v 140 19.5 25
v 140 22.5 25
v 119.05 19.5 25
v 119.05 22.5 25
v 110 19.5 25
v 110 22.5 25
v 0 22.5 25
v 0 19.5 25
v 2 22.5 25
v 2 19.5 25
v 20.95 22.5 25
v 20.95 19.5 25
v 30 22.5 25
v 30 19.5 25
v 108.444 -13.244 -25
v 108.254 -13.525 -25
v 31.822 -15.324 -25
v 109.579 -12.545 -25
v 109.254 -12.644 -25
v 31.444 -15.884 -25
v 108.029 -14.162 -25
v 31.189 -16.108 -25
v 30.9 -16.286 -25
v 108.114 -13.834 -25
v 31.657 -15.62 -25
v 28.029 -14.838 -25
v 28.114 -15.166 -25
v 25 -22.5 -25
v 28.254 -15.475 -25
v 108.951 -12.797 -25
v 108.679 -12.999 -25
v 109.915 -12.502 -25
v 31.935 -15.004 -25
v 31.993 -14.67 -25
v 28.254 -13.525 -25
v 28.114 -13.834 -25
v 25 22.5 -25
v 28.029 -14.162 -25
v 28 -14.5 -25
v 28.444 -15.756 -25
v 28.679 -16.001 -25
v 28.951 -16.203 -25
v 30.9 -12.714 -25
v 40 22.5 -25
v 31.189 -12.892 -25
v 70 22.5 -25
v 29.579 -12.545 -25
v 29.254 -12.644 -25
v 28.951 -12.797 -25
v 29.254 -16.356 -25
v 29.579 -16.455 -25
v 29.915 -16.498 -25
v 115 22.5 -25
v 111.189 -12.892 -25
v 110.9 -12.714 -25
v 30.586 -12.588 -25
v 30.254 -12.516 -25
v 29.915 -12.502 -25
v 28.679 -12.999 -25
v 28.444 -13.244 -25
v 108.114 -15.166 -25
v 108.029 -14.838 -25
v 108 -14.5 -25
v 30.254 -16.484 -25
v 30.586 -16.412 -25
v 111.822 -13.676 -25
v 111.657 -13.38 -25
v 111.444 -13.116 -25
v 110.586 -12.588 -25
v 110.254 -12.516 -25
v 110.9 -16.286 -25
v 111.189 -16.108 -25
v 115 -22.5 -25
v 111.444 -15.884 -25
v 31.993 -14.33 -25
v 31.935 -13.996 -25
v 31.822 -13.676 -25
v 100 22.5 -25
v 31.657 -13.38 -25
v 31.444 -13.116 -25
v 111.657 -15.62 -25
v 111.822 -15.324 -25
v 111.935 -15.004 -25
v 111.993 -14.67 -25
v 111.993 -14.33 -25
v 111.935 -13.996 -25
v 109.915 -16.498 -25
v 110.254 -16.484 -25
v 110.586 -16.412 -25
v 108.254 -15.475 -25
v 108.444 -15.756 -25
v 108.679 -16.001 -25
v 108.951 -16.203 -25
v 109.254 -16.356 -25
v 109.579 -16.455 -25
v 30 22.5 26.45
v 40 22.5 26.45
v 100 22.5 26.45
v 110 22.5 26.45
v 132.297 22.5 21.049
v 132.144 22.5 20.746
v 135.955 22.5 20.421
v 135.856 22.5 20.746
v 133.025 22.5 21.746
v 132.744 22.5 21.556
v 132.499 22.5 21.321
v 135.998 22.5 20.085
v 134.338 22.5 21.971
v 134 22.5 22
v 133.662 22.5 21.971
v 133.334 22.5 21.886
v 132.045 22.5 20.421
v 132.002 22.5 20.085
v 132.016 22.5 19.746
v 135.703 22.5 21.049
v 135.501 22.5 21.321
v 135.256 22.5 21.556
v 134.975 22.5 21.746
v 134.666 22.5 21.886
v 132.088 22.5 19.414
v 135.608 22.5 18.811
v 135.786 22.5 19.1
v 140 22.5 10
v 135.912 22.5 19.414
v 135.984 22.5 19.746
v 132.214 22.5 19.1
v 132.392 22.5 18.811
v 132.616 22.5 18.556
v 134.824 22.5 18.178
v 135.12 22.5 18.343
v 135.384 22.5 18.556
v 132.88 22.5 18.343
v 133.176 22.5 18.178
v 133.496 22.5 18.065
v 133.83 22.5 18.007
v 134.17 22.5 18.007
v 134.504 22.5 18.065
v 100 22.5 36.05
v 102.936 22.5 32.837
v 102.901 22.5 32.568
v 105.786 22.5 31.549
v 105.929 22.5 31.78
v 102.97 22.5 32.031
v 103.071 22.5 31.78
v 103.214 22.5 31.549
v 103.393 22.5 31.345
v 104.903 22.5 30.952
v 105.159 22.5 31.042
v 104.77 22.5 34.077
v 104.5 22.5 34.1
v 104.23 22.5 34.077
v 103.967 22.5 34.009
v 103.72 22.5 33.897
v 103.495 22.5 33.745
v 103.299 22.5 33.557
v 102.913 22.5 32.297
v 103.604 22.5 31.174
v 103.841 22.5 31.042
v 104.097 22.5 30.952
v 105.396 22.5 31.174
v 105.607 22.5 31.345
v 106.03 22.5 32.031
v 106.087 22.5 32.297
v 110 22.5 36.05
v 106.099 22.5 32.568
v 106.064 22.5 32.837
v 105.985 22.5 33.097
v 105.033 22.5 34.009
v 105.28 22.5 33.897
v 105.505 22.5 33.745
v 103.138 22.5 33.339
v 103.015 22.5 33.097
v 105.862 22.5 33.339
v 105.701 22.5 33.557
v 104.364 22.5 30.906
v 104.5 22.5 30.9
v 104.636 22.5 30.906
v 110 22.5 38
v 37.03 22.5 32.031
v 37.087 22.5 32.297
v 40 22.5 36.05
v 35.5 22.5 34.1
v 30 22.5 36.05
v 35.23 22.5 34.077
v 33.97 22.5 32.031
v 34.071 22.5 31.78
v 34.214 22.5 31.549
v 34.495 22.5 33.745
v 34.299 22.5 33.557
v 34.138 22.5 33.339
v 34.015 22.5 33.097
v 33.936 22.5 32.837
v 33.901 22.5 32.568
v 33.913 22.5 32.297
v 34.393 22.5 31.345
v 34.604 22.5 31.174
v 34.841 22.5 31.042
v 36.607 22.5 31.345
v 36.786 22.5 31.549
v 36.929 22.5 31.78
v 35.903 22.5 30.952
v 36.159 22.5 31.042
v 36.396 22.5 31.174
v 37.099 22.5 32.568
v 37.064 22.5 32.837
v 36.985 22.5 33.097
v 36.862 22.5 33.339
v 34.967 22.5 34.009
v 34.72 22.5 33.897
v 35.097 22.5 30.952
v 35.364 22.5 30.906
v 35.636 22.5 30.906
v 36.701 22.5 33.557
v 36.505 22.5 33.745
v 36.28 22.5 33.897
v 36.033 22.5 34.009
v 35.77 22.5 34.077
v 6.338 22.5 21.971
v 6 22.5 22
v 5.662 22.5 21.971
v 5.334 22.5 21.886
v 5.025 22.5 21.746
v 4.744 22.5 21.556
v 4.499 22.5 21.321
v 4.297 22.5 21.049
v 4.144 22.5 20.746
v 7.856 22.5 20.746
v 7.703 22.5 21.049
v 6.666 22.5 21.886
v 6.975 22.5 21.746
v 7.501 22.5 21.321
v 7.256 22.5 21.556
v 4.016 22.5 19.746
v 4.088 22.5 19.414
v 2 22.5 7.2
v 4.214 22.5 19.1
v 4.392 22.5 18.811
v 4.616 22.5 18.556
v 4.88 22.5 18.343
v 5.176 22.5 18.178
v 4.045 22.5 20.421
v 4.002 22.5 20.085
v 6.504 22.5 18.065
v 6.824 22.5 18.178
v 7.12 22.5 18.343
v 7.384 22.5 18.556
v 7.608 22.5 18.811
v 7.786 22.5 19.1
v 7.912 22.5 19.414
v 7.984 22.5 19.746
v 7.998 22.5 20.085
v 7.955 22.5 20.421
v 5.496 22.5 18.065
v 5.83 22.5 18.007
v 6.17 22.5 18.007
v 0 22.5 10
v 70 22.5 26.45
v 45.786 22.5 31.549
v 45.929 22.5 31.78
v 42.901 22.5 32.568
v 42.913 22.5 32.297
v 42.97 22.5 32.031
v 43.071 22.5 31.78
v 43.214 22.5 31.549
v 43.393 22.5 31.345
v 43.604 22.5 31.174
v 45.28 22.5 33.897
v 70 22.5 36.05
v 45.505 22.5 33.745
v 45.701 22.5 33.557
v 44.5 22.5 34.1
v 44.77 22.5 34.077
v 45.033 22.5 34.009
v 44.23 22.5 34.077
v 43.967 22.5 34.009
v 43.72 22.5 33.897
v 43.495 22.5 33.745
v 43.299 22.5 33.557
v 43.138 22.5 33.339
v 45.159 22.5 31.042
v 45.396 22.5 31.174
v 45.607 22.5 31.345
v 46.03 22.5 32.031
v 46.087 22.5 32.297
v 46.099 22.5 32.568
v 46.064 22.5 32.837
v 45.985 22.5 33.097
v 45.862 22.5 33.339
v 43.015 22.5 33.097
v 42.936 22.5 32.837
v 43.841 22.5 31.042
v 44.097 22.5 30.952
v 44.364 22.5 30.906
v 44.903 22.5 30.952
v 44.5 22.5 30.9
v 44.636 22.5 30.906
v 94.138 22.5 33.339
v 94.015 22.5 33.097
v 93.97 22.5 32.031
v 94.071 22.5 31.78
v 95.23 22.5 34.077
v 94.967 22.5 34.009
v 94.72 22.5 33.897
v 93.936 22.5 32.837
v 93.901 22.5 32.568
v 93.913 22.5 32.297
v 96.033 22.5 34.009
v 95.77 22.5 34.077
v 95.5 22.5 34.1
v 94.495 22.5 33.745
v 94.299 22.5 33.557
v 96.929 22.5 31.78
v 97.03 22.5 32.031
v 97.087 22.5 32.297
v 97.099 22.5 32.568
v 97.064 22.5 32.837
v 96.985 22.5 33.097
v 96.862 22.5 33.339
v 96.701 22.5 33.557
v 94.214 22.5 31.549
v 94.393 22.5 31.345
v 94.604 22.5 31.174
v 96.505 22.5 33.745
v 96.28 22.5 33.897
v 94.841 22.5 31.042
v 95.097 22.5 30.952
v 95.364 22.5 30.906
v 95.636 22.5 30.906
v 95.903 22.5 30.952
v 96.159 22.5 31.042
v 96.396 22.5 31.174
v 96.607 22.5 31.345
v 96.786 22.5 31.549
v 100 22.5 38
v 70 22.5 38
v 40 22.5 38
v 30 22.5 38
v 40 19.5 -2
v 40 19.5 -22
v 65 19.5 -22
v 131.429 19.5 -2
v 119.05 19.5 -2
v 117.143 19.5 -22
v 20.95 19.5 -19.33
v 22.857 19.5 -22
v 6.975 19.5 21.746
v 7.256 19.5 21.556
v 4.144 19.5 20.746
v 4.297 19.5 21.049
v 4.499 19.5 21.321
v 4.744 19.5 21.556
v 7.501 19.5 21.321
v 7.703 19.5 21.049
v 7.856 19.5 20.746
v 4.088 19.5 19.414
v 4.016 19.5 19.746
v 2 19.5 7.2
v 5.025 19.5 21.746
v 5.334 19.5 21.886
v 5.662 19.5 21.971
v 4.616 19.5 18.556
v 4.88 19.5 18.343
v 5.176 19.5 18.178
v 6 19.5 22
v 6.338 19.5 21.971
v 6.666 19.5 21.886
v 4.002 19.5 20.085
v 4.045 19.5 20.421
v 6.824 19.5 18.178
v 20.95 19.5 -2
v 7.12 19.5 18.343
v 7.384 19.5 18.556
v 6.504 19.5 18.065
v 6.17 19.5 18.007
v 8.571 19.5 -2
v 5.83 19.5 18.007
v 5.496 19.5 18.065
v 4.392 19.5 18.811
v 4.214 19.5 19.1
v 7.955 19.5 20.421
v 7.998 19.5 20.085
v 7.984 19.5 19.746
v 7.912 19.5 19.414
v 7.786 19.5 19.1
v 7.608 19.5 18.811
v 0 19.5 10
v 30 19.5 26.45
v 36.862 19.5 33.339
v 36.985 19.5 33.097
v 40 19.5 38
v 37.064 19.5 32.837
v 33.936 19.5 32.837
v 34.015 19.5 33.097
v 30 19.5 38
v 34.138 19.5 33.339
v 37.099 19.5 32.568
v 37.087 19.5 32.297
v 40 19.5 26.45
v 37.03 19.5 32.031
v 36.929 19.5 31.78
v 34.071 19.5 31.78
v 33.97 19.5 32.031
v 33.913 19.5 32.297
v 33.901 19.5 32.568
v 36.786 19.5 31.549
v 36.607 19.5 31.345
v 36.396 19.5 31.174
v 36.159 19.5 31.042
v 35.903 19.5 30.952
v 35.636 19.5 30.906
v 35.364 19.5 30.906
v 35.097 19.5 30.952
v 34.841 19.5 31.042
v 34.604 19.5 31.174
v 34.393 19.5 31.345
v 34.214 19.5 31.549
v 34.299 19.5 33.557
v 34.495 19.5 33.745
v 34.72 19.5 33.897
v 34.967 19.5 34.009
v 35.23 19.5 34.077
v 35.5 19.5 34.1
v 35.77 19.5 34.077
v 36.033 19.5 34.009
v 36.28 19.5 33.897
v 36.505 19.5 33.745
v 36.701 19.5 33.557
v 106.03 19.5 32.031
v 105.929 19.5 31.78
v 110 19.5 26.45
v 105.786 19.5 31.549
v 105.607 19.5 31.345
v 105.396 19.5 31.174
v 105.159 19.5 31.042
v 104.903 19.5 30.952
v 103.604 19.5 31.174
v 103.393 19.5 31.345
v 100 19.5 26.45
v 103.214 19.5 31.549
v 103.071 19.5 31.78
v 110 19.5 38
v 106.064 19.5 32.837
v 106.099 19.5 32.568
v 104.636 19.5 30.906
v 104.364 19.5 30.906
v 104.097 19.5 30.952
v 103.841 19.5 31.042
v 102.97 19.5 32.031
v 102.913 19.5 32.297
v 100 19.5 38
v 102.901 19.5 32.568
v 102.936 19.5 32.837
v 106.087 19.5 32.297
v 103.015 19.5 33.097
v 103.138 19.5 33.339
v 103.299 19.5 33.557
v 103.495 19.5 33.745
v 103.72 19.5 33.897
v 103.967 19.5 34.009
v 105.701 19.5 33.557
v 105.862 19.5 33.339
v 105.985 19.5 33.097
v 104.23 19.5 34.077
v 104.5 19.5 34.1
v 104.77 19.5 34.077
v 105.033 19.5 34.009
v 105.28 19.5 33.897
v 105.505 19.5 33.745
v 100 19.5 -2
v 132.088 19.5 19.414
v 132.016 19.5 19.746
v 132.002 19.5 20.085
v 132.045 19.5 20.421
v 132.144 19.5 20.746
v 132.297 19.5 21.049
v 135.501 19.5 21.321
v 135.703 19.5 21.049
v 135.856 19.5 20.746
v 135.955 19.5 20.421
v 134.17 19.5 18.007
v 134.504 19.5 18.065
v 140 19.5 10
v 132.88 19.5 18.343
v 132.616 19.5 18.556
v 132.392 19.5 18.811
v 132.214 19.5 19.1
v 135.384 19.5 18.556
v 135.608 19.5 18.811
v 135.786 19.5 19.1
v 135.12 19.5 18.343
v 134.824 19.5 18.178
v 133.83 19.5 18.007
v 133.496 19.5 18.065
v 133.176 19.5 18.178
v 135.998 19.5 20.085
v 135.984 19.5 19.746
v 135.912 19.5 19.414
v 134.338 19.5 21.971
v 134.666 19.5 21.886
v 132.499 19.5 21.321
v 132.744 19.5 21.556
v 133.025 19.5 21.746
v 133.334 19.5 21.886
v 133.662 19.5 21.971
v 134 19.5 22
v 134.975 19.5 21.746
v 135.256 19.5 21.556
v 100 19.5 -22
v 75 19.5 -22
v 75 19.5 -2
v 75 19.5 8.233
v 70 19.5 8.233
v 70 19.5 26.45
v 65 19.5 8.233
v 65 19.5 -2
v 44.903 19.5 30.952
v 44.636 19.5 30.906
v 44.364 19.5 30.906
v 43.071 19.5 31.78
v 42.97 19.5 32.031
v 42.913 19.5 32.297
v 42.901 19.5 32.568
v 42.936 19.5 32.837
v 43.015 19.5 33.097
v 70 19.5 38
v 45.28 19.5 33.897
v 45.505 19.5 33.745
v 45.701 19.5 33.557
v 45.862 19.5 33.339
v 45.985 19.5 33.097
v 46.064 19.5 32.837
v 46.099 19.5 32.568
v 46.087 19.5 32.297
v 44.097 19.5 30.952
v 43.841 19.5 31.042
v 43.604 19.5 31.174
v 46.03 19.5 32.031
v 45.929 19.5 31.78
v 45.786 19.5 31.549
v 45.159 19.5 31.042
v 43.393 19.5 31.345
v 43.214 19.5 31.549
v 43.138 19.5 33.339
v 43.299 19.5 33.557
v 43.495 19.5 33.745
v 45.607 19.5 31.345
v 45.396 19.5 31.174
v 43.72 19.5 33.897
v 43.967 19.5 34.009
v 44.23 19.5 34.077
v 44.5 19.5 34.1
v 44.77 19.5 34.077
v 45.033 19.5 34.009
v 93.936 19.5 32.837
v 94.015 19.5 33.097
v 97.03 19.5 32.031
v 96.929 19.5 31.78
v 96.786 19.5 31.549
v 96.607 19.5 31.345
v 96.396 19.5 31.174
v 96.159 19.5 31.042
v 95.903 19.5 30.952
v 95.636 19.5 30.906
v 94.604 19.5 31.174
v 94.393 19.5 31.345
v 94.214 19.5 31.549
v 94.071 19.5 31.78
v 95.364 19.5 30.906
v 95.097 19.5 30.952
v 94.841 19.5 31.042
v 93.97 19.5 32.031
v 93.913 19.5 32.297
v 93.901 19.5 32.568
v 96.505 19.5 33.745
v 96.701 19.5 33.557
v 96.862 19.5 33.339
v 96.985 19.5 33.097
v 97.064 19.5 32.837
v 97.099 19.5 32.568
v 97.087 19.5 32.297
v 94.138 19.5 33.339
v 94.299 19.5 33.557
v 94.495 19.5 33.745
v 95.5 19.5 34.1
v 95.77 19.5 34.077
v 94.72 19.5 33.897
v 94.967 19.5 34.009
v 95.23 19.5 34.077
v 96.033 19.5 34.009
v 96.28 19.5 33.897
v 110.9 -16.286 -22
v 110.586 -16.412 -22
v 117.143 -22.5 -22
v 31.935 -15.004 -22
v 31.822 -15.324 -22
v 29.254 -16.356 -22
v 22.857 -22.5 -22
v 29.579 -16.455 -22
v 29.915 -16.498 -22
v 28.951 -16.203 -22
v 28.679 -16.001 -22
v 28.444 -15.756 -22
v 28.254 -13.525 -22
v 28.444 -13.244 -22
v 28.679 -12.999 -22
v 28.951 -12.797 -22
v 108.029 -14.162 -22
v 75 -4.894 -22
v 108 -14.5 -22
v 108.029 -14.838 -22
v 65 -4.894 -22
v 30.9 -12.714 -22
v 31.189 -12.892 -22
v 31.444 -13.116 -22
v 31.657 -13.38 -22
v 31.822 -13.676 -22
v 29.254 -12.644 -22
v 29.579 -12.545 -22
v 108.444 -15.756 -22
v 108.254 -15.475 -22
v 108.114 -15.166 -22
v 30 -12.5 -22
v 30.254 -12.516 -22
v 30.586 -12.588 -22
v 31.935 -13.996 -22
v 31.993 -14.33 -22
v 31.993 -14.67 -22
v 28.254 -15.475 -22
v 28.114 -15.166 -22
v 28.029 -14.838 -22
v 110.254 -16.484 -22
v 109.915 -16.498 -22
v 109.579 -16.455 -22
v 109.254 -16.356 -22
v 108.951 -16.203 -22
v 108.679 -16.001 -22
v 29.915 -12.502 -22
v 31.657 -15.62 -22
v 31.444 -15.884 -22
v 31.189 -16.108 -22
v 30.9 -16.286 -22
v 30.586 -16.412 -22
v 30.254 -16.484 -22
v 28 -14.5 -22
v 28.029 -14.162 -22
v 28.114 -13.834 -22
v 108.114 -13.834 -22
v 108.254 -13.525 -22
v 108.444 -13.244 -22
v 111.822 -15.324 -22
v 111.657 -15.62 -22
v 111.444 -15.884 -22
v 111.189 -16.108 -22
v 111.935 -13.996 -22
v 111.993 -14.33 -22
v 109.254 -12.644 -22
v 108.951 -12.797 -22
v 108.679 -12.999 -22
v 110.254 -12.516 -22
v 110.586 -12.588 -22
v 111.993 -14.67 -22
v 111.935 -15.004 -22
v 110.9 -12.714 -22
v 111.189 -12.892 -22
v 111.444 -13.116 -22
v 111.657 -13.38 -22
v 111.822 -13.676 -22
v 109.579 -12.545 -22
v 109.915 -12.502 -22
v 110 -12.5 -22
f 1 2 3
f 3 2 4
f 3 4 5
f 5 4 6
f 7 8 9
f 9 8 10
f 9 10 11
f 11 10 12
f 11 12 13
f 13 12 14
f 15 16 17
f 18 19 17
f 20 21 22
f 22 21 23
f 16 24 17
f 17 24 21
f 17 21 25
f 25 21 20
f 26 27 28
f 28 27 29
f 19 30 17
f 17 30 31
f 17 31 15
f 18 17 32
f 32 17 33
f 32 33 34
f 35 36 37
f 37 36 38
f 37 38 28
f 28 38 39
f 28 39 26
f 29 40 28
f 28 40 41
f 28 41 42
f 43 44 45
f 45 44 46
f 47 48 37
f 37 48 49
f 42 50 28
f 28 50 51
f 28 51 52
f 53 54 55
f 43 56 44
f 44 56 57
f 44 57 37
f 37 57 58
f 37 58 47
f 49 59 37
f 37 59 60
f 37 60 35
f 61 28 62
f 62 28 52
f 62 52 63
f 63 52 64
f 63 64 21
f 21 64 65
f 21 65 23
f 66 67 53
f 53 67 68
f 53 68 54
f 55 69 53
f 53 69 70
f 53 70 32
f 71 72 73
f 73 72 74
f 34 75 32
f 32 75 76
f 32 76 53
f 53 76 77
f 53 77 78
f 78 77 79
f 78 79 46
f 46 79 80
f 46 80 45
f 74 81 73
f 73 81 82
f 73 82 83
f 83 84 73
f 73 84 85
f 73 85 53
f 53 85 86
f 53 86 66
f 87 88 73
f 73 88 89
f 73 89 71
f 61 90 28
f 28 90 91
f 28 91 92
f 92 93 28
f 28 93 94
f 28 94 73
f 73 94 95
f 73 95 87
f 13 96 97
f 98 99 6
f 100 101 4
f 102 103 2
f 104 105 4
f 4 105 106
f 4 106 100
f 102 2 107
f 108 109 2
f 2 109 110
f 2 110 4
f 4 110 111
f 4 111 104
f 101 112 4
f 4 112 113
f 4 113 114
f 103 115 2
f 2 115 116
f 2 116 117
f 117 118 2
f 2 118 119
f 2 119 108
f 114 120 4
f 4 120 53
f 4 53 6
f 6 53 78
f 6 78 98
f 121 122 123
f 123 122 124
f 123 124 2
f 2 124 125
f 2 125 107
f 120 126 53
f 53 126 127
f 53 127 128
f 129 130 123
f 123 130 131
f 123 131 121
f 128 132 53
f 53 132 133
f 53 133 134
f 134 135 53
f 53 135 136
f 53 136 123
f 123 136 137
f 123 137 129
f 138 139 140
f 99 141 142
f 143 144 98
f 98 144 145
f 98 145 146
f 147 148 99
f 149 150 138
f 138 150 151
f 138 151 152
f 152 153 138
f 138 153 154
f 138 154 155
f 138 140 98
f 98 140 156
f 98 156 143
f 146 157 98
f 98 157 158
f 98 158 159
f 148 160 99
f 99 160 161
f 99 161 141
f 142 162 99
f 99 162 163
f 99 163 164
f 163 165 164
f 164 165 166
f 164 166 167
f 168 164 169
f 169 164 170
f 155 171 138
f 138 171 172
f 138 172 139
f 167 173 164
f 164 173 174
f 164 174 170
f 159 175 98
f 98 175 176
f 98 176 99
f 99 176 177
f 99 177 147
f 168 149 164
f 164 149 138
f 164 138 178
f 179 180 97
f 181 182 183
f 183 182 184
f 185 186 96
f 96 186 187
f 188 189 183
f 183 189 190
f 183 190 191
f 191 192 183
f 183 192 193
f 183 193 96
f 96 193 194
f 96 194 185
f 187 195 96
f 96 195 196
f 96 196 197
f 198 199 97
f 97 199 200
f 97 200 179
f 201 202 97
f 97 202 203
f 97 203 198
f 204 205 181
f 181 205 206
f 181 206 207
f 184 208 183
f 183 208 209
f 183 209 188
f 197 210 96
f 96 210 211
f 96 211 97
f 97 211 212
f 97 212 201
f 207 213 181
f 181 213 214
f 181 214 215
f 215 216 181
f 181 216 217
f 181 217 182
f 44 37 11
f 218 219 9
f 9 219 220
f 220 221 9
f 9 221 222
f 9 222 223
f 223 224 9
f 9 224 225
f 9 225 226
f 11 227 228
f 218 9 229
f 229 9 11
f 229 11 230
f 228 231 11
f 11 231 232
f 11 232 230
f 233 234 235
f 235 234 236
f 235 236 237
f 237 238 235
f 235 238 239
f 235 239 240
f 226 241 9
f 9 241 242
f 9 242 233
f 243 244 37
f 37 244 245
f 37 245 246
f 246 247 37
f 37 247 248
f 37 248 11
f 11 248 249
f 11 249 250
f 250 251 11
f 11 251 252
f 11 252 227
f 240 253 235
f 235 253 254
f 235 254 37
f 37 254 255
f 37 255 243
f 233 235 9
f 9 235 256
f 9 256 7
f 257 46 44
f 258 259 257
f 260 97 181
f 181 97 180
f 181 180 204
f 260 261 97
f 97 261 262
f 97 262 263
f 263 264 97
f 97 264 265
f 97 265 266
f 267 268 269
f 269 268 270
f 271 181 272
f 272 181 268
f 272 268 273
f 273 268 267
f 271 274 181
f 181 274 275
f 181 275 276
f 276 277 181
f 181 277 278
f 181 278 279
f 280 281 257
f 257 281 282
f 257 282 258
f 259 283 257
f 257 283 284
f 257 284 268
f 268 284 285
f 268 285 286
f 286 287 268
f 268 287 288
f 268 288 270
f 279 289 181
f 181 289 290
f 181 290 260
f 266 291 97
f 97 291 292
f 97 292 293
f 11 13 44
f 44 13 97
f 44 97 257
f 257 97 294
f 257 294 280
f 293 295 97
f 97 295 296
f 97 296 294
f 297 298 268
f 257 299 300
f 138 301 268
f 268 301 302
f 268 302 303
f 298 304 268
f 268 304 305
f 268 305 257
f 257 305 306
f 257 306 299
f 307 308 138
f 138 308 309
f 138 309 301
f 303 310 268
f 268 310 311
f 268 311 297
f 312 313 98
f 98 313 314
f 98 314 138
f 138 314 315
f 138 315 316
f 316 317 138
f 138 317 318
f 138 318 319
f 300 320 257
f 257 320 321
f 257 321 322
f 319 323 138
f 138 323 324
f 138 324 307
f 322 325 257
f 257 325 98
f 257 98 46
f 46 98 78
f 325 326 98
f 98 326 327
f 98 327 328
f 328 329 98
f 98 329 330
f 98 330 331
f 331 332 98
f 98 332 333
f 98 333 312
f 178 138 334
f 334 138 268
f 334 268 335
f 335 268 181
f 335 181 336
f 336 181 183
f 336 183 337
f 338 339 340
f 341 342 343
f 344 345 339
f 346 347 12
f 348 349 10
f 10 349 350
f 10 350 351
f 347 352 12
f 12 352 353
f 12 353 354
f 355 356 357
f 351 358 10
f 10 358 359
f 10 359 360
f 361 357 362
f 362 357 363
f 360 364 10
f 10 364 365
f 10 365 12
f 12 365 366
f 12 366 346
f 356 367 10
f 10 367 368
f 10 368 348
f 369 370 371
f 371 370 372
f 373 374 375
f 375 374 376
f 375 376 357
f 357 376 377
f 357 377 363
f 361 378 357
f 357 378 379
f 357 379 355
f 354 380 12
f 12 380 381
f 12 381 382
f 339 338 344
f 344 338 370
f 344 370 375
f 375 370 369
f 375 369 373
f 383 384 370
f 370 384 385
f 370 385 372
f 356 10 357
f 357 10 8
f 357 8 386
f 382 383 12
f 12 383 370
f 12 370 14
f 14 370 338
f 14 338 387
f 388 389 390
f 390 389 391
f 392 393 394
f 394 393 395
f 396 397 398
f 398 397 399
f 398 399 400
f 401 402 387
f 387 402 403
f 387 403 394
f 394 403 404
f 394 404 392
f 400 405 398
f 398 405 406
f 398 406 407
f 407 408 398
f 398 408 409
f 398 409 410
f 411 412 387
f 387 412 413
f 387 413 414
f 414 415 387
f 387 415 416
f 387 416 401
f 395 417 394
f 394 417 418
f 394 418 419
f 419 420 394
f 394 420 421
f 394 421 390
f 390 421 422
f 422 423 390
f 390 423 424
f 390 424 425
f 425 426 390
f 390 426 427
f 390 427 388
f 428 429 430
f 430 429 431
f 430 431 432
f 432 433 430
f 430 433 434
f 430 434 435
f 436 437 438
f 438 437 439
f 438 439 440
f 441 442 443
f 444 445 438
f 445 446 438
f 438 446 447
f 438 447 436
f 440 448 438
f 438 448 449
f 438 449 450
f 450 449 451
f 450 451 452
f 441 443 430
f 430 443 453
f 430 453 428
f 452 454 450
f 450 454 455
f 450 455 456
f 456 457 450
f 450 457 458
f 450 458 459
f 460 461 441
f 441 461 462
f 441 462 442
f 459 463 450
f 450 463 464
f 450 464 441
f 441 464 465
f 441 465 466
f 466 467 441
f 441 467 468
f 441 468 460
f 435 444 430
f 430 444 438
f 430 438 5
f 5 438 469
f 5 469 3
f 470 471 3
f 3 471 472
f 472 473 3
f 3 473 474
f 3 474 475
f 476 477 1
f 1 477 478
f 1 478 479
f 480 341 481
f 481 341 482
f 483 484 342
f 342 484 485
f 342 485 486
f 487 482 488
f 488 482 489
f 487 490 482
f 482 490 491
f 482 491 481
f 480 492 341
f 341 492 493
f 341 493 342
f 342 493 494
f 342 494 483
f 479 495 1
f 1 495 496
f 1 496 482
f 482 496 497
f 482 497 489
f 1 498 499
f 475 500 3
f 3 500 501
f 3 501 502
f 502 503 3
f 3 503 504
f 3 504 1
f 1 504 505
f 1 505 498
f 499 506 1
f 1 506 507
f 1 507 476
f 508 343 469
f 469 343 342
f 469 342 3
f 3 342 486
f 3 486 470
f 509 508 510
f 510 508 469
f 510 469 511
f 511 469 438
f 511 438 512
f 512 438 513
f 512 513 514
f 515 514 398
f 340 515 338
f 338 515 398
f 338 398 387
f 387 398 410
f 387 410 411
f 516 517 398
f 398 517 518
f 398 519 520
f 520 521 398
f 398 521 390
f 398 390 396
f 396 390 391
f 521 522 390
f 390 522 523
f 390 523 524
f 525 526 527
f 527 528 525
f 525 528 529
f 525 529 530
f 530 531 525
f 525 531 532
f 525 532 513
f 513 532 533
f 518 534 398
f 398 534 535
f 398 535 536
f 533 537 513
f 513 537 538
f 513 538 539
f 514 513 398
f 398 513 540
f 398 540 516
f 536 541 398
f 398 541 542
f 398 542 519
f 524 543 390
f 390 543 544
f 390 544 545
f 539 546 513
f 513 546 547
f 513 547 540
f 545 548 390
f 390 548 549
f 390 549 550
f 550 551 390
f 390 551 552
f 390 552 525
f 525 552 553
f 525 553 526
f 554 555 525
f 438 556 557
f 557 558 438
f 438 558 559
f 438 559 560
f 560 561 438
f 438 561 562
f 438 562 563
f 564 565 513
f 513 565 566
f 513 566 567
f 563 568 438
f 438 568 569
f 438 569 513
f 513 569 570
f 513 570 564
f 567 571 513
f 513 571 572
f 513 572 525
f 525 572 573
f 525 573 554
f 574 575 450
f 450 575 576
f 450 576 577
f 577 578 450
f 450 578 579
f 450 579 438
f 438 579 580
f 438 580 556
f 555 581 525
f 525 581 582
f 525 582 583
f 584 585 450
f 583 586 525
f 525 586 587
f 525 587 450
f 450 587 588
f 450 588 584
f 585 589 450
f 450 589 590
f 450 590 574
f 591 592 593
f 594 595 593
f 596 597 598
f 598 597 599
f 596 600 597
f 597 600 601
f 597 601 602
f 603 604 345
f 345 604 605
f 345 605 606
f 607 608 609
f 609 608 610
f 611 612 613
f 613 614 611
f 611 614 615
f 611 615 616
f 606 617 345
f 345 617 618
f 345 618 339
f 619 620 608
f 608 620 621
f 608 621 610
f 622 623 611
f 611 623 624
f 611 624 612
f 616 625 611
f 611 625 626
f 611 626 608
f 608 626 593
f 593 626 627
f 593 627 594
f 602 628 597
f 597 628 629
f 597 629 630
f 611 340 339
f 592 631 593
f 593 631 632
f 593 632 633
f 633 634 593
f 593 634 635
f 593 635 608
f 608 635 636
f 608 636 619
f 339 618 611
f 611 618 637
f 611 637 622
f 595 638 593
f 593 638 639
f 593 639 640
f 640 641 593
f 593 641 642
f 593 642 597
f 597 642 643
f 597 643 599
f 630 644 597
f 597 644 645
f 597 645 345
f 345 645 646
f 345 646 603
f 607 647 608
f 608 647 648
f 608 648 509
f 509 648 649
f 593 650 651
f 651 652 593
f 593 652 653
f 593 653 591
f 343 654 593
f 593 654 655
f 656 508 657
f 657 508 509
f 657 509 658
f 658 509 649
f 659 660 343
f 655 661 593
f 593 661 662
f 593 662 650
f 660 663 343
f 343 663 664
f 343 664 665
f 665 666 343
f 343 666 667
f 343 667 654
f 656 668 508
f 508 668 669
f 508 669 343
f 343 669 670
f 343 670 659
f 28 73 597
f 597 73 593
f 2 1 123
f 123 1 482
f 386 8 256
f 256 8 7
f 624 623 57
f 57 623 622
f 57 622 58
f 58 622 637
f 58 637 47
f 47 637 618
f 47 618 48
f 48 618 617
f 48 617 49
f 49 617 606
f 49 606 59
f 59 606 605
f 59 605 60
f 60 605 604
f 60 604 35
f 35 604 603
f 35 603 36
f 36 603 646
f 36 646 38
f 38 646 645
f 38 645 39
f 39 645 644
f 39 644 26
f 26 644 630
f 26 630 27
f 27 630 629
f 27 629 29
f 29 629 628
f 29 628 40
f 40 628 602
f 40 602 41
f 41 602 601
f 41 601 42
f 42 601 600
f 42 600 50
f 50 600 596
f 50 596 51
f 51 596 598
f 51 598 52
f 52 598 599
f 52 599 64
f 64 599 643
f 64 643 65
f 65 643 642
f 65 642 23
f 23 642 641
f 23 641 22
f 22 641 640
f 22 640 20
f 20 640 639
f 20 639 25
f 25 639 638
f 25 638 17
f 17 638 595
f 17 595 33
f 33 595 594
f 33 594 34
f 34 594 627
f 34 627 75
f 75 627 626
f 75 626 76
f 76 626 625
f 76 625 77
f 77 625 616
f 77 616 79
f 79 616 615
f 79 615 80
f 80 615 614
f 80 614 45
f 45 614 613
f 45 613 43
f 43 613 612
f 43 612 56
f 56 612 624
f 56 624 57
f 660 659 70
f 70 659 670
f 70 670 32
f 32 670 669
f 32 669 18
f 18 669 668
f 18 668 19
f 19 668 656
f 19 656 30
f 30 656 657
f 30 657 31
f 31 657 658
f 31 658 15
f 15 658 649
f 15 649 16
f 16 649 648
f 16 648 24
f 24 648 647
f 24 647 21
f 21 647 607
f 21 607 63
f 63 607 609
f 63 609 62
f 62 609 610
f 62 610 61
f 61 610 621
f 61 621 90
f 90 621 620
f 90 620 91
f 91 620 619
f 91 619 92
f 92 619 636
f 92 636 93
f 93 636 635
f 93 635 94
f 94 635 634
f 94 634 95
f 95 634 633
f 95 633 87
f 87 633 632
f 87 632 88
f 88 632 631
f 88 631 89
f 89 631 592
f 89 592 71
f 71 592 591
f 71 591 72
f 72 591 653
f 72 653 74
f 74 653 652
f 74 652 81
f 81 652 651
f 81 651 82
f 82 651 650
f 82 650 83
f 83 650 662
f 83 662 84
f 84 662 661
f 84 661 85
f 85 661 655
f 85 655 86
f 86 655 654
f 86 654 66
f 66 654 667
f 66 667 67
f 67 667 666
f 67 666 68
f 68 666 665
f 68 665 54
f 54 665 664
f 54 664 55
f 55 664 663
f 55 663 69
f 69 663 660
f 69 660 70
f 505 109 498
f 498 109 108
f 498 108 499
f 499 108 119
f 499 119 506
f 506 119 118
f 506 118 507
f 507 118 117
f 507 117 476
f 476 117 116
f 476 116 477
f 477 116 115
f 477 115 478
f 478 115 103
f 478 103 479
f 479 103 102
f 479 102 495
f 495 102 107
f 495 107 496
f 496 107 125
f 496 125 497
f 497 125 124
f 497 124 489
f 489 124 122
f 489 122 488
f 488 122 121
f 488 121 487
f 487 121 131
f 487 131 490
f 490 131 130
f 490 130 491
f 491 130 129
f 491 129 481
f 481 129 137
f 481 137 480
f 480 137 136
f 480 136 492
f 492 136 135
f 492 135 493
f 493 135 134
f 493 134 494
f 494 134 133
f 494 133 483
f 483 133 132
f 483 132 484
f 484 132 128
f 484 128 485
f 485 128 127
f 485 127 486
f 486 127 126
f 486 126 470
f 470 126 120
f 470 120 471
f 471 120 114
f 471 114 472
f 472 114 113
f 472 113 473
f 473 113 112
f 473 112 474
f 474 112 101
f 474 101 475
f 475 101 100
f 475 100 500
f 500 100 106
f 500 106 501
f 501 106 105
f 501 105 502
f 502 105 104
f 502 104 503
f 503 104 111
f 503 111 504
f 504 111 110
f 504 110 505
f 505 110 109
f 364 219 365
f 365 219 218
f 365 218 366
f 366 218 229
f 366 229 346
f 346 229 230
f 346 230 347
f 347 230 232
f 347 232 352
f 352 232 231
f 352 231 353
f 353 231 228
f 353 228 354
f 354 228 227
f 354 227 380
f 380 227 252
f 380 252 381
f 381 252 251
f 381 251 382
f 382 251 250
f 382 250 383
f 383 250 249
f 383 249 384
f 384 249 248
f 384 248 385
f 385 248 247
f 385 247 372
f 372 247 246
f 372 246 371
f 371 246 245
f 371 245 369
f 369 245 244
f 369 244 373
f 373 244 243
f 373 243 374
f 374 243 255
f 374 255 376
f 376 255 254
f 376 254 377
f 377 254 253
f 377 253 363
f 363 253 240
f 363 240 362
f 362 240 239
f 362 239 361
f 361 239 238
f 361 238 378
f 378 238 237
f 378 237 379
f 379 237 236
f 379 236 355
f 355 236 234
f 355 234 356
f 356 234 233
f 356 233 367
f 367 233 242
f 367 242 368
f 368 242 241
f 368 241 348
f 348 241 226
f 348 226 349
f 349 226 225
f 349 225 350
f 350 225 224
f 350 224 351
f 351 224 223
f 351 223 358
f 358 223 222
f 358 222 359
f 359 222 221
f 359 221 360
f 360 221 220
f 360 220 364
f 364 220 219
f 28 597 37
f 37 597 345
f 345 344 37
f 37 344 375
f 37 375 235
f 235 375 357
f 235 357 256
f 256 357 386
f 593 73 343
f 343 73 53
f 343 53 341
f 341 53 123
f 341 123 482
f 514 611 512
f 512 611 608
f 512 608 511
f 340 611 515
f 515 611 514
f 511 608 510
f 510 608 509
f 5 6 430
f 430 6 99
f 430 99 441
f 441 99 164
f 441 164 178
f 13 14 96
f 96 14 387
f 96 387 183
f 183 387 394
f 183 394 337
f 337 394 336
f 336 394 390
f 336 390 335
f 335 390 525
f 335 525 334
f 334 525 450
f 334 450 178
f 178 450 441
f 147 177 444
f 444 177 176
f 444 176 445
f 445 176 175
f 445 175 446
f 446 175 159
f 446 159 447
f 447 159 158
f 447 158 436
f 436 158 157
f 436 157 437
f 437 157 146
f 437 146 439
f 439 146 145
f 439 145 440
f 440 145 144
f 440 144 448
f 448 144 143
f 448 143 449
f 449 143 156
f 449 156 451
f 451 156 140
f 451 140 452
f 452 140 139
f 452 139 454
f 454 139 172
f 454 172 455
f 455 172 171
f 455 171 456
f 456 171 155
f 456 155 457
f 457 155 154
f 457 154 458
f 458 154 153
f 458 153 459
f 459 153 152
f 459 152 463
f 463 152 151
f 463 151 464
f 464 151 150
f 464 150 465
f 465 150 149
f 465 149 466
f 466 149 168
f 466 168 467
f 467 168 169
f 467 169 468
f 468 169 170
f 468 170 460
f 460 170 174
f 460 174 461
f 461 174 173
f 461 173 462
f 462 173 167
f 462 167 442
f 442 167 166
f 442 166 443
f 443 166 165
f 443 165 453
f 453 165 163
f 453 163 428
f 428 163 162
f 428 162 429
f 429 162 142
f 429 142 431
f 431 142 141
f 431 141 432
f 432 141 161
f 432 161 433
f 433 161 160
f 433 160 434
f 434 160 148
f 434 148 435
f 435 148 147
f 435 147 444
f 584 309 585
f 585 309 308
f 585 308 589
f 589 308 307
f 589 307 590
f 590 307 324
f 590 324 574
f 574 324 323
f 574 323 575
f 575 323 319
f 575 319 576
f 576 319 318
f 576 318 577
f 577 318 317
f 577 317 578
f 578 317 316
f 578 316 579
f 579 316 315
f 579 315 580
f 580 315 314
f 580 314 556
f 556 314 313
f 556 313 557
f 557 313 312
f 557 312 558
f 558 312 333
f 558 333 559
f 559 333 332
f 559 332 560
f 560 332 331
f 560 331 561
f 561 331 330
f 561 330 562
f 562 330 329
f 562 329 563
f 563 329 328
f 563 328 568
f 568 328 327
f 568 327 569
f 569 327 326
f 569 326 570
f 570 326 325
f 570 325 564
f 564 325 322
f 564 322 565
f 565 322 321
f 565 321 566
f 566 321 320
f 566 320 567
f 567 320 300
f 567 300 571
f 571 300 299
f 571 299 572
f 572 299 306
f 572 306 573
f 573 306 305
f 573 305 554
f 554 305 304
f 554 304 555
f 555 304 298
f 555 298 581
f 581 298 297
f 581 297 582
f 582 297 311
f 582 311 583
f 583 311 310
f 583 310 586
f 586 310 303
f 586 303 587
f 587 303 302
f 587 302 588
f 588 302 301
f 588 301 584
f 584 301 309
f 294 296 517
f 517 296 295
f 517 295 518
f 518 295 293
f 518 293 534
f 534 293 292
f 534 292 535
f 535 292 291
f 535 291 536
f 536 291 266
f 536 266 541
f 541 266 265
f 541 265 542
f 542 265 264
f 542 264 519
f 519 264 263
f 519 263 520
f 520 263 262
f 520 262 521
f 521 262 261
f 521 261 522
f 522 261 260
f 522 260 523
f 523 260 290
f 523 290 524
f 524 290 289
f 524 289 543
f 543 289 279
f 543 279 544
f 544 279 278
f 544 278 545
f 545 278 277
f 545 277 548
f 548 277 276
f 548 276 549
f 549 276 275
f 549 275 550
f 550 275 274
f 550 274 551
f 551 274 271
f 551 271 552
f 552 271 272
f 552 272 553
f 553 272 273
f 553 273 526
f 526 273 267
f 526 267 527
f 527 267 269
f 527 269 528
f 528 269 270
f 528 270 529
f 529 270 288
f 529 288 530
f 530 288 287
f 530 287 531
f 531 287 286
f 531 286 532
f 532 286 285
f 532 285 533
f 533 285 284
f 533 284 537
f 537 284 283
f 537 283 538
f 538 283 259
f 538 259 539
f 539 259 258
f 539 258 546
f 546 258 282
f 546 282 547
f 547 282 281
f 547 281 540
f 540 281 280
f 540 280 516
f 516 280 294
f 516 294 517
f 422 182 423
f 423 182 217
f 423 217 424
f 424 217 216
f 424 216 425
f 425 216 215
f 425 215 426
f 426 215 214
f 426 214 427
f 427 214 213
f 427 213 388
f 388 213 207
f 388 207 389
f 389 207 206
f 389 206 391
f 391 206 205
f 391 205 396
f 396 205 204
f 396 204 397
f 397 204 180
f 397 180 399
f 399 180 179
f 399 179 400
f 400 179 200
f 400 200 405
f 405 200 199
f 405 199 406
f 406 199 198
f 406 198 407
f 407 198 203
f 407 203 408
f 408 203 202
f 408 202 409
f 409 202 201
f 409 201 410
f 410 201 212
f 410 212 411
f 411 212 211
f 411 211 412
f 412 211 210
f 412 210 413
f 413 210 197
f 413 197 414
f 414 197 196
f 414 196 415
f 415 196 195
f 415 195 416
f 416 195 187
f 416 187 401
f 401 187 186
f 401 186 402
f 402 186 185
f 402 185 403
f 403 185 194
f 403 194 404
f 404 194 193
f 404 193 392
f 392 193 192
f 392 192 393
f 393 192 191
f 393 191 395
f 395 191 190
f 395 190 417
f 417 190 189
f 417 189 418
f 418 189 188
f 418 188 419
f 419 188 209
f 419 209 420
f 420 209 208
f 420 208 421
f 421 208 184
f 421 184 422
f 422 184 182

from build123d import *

# Parameters (mm, degrees)
EXTRUDE_1_DEPTH     = 140
CUT_EXTRUDE_1_REACH = 152.354
SKETCH_2_R          = 2
CUT_EXTRUDE_2_REACH = 151.164
SKETCH_3_R          = 2
CUT_EXTRUDE_3_DEPTH = 150.164338902
RIB_2_REACH         = 79.661
SKETCH_9_WALL_W     = 196.169186172
SKETCH_9_WALL_H     = 10
SKETCH_10_W         = 80
SKETCH_10_H         = 3
EXTRUDE_2_DEPTH     = 13
SKETCH_11_R         = 1.6
CUT_EXTRUDE_4_DEPTH = 3


with BuildPart() as part:
    # 草图1 → 凸台-拉伸1 (new body)
    with BuildSketch(Plane(origin=(0, 0, 0), x_dir=(0, 0, -1), z_dir=(1, 0, 0))):
        Polygon((22, 19.5), (22, -22.5), (25, -22.5), (25, 22.5), (-25, 22.5), (-25, 19.5), align=None)
    extrude(amount=EXTRUDE_1_DEPTH)

    # 草图2 → 切除-拉伸1 (cut, up to next)
    with BuildSketch(Plane(origin=(0, 0, -25), x_dir=(-1, 0, 0), z_dir=(0, 0, -1)), mode=Mode.PRIVATE) as cut_extrude_1_sk1:
        with Locations((-110, -14.5)):
            Circle(SKETCH_2_R)
    cut_extrude_1_tool1 = extrude(cut_extrude_1_sk1.sketch, amount=-CUT_EXTRUDE_1_REACH, mode=Mode.PRIVATE) & part.part
    # 草图2 → 切除-拉伸1 (cut, up to next)
    with BuildSketch(Plane(origin=(0, 0, -25), x_dir=(-1, 0, 0), z_dir=(0, 0, -1)), mode=Mode.PRIVATE) as cut_extrude_1_sk2:
        with Locations((-30, -14.5)):
            Circle(SKETCH_2_R)
    cut_extrude_1_tool2 = extrude(cut_extrude_1_sk2.sketch, amount=-CUT_EXTRUDE_1_REACH, mode=Mode.PRIVATE) & part.part
    add(cut_extrude_1_tool1.solids().sort_by_distance((110, -14.5, -25))[0], mode=Mode.SUBTRACT)
    add(cut_extrude_1_tool2.solids().sort_by_distance((30, -14.5, -25))[0], mode=Mode.SUBTRACT)

    # 草图3 → 切除-拉伸2 (cut, up to next)
    with BuildSketch(Plane(origin=(0, 22.5, 0), x_dir=(1, 0, 0), z_dir=(0, 1, 0)), mode=Mode.PRIVATE) as cut_extrude_2_sk1:
        with Locations(Location((6, -20, 0), (0, 0, 270))):
            Circle(SKETCH_3_R)
    cut_extrude_2_tool1 = extrude(cut_extrude_2_sk1.sketch, amount=-CUT_EXTRUDE_2_REACH, mode=Mode.PRIVATE) & part.part
    # 草图3 → 切除-拉伸2 (cut, up to next)
    with BuildSketch(Plane(origin=(0, 22.5, 0), x_dir=(1, 0, 0), z_dir=(0, 1, 0)), mode=Mode.PRIVATE) as cut_extrude_2_sk2:
        with Locations(Location((134, -20, 0), (0, 0, 270))):
            Circle(SKETCH_3_R)
    cut_extrude_2_tool2 = extrude(cut_extrude_2_sk2.sketch, amount=-CUT_EXTRUDE_2_REACH, mode=Mode.PRIVATE) & part.part
    add(cut_extrude_2_tool1.solids().sort_by_distance((6, 22.5, 20))[0], mode=Mode.SUBTRACT)
    add(cut_extrude_2_tool2.solids().sort_by_distance((134, 22.5, 20))[0], mode=Mode.SUBTRACT)

    # 草图4 → 切除-拉伸3 (cut, through all)
    with BuildSketch(Plane(origin=(0, 22.5, 0), x_dir=(1, 0, 0), z_dir=(0, 1, 0))):
        Polygon((140, 25), (115, 25), (140, -10), align=None)
        Polygon((25, 25), (0, 25), (0, -10), align=None)
    extrude(amount=-CUT_EXTRUDE_3_DEPTH, mode=Mode.SUBTRACT)

    # 草图9 wall → 筋2 (add, up to next)
    with BuildSketch(Plane(origin=(70, 7.303048218, -6.883599508), x_dir=(0, 0.627949157595, 0.778254364251), z_dir=(0, 0.778254364251, -0.627949157595)), mode=Mode.PRIVATE) as rib_2_sk1:
        Rectangle(SKETCH_9_WALL_W, SKETCH_9_WALL_H)
    rib_2_tool1 = extrude(rib_2_sk1.sketch, amount=RIB_2_REACH, mode=Mode.PRIVATE) - part.part
    add(rib_2_tool1.solids().sort_by_distance((70, 7.303048218, -6.883599508))[0])

    # 草图10 → 凸台-拉伸2 (add)
    with BuildSketch(Plane.XY.offset(25)):
        with Locations((70, 21)):
            Rectangle(SKETCH_10_W, SKETCH_10_H)
    extrude(amount=EXTRUDE_2_DEPTH)

    # 草图11 → 切除-拉伸4 (cut)
    with BuildSketch(Plane(origin=(0, 22.5, 0), x_dir=(1, 0, 0), z_dir=(0, 1, 0))):
        with Locations(Location((35.5, -32.5, 0), (0, 0, 270))):
            Circle(SKETCH_11_R)
        with Locations(Location((44.5, -32.5, 0), (0, 0, 270))):
            Circle(SKETCH_11_R)
        with Locations(Location((95.5, -32.5, 0), (0, 0, 270))):
            Circle(SKETCH_11_R)
        with Locations(Location((104.5, -32.5, 0), (0, 0, 270))):
            Circle(SKETCH_11_R)
    extrude(amount=-CUT_EXTRUDE_4_DEPTH, mode=Mode.SUBTRACT)


solid = part.part
